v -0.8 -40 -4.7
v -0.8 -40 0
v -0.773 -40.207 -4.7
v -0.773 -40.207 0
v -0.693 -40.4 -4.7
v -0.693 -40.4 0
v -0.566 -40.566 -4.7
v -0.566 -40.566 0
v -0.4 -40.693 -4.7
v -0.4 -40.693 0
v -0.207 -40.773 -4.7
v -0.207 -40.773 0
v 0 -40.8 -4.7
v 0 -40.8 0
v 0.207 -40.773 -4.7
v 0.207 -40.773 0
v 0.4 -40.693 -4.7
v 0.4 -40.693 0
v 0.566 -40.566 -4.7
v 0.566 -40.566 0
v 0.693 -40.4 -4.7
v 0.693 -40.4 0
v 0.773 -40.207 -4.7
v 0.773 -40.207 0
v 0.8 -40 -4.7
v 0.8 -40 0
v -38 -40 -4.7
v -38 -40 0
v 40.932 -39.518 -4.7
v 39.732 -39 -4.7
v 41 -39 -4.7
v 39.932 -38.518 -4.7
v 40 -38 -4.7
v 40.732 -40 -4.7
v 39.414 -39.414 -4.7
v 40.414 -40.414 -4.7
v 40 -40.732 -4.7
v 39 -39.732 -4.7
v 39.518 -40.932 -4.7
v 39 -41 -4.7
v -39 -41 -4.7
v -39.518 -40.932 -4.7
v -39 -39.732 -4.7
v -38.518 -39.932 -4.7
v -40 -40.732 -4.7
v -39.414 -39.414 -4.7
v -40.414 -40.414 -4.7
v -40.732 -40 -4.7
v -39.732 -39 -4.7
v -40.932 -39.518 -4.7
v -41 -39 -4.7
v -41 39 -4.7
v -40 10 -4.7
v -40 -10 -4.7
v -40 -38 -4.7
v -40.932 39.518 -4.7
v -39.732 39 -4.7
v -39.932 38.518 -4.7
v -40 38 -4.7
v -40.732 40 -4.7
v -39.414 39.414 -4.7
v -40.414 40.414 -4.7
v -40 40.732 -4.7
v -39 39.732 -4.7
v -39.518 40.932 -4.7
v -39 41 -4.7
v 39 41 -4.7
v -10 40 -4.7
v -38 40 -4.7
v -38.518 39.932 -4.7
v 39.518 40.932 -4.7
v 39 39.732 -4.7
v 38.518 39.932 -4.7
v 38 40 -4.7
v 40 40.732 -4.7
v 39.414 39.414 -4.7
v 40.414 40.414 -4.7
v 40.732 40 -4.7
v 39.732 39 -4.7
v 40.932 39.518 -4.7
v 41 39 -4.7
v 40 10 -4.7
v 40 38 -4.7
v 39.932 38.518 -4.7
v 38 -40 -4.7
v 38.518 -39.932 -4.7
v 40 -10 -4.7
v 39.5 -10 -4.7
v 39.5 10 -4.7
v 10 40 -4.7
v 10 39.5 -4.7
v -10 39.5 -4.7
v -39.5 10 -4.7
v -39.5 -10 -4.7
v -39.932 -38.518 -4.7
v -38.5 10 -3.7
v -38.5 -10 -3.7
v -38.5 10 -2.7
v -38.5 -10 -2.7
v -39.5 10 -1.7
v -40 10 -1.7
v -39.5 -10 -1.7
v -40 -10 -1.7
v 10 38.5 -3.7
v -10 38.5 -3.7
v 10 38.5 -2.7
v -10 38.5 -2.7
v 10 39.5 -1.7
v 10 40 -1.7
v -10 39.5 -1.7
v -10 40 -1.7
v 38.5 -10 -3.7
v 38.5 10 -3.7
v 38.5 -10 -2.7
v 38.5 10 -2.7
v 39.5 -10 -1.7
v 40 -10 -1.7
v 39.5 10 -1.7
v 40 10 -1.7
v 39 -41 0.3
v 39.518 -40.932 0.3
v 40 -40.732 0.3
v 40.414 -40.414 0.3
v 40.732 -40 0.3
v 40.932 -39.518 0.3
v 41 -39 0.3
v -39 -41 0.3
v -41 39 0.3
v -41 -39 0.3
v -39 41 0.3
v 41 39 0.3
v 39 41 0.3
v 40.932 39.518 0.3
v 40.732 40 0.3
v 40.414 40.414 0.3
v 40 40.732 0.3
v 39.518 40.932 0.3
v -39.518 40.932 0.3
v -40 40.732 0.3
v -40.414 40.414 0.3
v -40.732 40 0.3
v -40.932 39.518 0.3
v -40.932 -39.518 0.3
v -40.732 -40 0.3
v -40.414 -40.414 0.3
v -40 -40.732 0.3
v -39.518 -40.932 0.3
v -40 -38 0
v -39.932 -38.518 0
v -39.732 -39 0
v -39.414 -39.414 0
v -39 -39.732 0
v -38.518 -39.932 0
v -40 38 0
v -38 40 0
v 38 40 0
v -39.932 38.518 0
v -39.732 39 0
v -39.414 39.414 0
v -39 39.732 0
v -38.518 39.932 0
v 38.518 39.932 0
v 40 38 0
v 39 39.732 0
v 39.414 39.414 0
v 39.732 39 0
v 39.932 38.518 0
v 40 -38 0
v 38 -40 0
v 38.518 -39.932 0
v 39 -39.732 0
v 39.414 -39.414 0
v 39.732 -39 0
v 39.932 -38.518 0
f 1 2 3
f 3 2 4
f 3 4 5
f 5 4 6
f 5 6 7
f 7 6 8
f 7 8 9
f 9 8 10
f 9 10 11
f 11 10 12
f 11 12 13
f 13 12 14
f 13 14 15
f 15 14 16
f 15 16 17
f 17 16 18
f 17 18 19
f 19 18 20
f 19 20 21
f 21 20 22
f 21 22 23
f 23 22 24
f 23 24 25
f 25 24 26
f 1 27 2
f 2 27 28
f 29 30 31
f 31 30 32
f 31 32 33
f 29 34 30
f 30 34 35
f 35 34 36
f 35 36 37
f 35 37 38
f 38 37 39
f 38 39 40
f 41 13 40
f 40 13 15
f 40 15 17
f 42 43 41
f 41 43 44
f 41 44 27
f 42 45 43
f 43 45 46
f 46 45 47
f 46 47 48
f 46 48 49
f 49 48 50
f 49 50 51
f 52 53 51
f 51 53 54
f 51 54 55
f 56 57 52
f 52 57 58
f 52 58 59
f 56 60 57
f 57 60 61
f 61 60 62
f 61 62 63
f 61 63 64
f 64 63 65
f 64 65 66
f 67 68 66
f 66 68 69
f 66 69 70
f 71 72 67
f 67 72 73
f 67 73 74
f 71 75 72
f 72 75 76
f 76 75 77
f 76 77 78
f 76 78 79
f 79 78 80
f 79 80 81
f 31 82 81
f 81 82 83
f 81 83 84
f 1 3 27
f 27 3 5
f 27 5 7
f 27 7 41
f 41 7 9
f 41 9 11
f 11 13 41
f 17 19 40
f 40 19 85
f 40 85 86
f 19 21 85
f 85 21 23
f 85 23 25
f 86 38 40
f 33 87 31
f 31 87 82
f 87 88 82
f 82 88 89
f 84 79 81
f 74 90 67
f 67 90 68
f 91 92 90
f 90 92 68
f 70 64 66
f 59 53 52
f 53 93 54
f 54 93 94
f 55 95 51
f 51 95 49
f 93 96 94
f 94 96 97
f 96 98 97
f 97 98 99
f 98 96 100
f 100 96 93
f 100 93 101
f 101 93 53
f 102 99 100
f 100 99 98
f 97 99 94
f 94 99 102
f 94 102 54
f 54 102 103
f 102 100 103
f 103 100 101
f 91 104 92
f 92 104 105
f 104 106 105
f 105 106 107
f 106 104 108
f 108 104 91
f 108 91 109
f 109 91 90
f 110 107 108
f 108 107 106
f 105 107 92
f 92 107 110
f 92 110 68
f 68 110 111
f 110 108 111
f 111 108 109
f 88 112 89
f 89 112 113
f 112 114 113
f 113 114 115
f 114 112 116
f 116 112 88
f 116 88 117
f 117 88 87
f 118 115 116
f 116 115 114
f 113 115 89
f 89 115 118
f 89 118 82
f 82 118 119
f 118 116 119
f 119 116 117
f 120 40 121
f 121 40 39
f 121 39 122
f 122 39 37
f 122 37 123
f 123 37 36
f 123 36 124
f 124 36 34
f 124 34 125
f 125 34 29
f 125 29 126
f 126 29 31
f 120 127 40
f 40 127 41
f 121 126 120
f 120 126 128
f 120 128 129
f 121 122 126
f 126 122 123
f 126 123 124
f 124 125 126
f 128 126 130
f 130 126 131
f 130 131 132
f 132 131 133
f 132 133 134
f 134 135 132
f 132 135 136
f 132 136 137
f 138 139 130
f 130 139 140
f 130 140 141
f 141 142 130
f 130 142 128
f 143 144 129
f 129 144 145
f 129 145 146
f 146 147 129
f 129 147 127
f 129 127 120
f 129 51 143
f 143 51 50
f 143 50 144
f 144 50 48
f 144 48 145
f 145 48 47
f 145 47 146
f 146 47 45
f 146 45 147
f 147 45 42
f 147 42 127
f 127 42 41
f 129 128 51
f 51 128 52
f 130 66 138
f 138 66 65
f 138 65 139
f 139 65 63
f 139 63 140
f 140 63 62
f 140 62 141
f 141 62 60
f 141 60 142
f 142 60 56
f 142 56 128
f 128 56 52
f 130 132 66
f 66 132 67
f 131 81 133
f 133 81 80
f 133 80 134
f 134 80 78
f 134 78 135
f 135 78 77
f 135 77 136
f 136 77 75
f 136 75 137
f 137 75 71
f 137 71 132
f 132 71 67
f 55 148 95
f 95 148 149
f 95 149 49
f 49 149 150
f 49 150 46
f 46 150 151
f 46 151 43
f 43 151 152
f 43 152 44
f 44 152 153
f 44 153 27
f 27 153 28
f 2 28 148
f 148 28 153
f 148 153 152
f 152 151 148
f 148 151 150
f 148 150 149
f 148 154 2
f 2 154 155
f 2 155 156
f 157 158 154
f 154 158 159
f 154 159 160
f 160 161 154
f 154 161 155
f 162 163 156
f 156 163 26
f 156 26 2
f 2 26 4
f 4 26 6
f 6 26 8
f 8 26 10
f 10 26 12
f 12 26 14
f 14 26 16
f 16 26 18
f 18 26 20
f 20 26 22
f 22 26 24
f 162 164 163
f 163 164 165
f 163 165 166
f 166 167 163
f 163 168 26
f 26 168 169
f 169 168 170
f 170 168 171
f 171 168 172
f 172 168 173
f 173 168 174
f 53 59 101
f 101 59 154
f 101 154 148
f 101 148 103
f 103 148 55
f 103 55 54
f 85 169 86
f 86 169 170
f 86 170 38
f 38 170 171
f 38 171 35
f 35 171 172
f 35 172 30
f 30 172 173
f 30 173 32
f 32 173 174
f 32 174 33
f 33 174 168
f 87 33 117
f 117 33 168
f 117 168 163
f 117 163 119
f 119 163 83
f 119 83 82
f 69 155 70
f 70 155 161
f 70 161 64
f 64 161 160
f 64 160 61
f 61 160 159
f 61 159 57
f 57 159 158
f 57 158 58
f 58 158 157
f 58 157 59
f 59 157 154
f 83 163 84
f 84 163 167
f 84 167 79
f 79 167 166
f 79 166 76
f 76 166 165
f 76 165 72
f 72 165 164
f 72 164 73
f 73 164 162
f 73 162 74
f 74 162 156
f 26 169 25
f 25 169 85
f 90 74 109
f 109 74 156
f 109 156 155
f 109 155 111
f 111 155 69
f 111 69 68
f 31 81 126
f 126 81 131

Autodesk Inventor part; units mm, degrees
ref_plane "YZ Plane" through (0, 0, 0) normal (1, 0, 0) x (0, 1, 0)
ref_plane "XZ Plane" through (0, 0, 0) normal (0, 1, 0) x (-1, 0, 0)
ref_plane "XY Plane" through (0, 0, 0) normal (0, 0, 1) x (1, 0, 0)
sketch "Sketch1" plane through (0, 0, 0) normal (0, 0, 1) x (1, 0, 0)
  line L0 (-40, 40) -> (40, 40)
  line L1 (40, 40) -> (40, -40)
  line L2 (40, -40) -> (-40, -40)
  line L3 (-40, -40) -> (-40, 40)
  point P0 (0, 0)
  dimension "d0" = 80
  dimension "d1" = 80
  dimension "d19" = 40
  dimension "d20" = 40
extrude "Extrusion1" add sketch "Sketch1" along normal blind 0.3
sketch "Sketch2" plane through (0, 0, 0.3) normal (0, 0, 1) x (1, 0, 0)
  line L0 (40, 40) -> (-40, 40) projected
  line L1 (-40, 40) -> (-40, -40) projected
  line L2 (-40, -40) -> (40, -40) projected
  line L3 (40, -40) -> (40, 40) projected
  line L4 (-41, 41) -> (41, 41)
  line L5 (41, 41) -> (41, -41)
  line L6 (41, -41) -> (-41, -41)
  line L7 (-41, -41) -> (-41, 41)
  point P0 (0, 0)
  dimension "d4" = 1
extrude "Extrusion2" add sketch "Sketch2" against normal blind 5
fillet "Fillet1" radius 2 8 edges at (40, 40, -2.35) (-40, 40, -2.35) (40, -40, -2.35) (-40, -40, -2.35) (41, 41, -2.2) (-41, 41, -2.2) (-41, -41, -2.2) (41, -41, -2.2)
sketch "Sketch3" plane through (40, -38, 0) normal (-1, 0, 0) x (0, 0, 1)
  line L0 (-4.7, 77) -> (-4.7, -1) projected
  line L1 (-4.7, 48) -> (-1.7, 48)
  line L2 (-1.7, 48) -> (-1.7, 28)
  line L3 (-1.7, 28) -> (-4.7, 28)
  line L4 (-4.7, 28) -> (-4.7, 48)
  line L5 (0, 78) -> (-4.7, 78) projected
  point P0 (0, 38)
  dimension "d13" = 3
  dimension "d14" = 20
  dimension "d15" = 30
extrude "Extrusion3" add sketch "Sketch3" along normal blind 1.5
chamfer "Chamfer1" distance 1 angle 45 1 edges at (38.5, 0, -1.7)
chamfer "Chamfer2" distance 1 angle 45 1 edges at (38.5, 0, -4.7)
pattern_circular "Circular Pattern1" count 3 over 180 about axis through (0, 0, -10) along (0, 0, 1) of "Extrusion3", "Chamfer2", "Chamfer1"
sketch "Sketch4" plane through (0, 0, -4.7) normal (0, 0, -1) x (-1, 0, 0)
  line L0 (38, -40) -> (-38, -40) projected
  arc A0 (-0.8, -40) -> (0.8, -40) centre (0, -40) ccw
  point P0 (0, 0)
  dimension "d24" = 0.8
extrude "Extrusion4" cut sketch "Sketch4" against normal up to surface (4.7 mm away)
properties part number "Cap plate"
